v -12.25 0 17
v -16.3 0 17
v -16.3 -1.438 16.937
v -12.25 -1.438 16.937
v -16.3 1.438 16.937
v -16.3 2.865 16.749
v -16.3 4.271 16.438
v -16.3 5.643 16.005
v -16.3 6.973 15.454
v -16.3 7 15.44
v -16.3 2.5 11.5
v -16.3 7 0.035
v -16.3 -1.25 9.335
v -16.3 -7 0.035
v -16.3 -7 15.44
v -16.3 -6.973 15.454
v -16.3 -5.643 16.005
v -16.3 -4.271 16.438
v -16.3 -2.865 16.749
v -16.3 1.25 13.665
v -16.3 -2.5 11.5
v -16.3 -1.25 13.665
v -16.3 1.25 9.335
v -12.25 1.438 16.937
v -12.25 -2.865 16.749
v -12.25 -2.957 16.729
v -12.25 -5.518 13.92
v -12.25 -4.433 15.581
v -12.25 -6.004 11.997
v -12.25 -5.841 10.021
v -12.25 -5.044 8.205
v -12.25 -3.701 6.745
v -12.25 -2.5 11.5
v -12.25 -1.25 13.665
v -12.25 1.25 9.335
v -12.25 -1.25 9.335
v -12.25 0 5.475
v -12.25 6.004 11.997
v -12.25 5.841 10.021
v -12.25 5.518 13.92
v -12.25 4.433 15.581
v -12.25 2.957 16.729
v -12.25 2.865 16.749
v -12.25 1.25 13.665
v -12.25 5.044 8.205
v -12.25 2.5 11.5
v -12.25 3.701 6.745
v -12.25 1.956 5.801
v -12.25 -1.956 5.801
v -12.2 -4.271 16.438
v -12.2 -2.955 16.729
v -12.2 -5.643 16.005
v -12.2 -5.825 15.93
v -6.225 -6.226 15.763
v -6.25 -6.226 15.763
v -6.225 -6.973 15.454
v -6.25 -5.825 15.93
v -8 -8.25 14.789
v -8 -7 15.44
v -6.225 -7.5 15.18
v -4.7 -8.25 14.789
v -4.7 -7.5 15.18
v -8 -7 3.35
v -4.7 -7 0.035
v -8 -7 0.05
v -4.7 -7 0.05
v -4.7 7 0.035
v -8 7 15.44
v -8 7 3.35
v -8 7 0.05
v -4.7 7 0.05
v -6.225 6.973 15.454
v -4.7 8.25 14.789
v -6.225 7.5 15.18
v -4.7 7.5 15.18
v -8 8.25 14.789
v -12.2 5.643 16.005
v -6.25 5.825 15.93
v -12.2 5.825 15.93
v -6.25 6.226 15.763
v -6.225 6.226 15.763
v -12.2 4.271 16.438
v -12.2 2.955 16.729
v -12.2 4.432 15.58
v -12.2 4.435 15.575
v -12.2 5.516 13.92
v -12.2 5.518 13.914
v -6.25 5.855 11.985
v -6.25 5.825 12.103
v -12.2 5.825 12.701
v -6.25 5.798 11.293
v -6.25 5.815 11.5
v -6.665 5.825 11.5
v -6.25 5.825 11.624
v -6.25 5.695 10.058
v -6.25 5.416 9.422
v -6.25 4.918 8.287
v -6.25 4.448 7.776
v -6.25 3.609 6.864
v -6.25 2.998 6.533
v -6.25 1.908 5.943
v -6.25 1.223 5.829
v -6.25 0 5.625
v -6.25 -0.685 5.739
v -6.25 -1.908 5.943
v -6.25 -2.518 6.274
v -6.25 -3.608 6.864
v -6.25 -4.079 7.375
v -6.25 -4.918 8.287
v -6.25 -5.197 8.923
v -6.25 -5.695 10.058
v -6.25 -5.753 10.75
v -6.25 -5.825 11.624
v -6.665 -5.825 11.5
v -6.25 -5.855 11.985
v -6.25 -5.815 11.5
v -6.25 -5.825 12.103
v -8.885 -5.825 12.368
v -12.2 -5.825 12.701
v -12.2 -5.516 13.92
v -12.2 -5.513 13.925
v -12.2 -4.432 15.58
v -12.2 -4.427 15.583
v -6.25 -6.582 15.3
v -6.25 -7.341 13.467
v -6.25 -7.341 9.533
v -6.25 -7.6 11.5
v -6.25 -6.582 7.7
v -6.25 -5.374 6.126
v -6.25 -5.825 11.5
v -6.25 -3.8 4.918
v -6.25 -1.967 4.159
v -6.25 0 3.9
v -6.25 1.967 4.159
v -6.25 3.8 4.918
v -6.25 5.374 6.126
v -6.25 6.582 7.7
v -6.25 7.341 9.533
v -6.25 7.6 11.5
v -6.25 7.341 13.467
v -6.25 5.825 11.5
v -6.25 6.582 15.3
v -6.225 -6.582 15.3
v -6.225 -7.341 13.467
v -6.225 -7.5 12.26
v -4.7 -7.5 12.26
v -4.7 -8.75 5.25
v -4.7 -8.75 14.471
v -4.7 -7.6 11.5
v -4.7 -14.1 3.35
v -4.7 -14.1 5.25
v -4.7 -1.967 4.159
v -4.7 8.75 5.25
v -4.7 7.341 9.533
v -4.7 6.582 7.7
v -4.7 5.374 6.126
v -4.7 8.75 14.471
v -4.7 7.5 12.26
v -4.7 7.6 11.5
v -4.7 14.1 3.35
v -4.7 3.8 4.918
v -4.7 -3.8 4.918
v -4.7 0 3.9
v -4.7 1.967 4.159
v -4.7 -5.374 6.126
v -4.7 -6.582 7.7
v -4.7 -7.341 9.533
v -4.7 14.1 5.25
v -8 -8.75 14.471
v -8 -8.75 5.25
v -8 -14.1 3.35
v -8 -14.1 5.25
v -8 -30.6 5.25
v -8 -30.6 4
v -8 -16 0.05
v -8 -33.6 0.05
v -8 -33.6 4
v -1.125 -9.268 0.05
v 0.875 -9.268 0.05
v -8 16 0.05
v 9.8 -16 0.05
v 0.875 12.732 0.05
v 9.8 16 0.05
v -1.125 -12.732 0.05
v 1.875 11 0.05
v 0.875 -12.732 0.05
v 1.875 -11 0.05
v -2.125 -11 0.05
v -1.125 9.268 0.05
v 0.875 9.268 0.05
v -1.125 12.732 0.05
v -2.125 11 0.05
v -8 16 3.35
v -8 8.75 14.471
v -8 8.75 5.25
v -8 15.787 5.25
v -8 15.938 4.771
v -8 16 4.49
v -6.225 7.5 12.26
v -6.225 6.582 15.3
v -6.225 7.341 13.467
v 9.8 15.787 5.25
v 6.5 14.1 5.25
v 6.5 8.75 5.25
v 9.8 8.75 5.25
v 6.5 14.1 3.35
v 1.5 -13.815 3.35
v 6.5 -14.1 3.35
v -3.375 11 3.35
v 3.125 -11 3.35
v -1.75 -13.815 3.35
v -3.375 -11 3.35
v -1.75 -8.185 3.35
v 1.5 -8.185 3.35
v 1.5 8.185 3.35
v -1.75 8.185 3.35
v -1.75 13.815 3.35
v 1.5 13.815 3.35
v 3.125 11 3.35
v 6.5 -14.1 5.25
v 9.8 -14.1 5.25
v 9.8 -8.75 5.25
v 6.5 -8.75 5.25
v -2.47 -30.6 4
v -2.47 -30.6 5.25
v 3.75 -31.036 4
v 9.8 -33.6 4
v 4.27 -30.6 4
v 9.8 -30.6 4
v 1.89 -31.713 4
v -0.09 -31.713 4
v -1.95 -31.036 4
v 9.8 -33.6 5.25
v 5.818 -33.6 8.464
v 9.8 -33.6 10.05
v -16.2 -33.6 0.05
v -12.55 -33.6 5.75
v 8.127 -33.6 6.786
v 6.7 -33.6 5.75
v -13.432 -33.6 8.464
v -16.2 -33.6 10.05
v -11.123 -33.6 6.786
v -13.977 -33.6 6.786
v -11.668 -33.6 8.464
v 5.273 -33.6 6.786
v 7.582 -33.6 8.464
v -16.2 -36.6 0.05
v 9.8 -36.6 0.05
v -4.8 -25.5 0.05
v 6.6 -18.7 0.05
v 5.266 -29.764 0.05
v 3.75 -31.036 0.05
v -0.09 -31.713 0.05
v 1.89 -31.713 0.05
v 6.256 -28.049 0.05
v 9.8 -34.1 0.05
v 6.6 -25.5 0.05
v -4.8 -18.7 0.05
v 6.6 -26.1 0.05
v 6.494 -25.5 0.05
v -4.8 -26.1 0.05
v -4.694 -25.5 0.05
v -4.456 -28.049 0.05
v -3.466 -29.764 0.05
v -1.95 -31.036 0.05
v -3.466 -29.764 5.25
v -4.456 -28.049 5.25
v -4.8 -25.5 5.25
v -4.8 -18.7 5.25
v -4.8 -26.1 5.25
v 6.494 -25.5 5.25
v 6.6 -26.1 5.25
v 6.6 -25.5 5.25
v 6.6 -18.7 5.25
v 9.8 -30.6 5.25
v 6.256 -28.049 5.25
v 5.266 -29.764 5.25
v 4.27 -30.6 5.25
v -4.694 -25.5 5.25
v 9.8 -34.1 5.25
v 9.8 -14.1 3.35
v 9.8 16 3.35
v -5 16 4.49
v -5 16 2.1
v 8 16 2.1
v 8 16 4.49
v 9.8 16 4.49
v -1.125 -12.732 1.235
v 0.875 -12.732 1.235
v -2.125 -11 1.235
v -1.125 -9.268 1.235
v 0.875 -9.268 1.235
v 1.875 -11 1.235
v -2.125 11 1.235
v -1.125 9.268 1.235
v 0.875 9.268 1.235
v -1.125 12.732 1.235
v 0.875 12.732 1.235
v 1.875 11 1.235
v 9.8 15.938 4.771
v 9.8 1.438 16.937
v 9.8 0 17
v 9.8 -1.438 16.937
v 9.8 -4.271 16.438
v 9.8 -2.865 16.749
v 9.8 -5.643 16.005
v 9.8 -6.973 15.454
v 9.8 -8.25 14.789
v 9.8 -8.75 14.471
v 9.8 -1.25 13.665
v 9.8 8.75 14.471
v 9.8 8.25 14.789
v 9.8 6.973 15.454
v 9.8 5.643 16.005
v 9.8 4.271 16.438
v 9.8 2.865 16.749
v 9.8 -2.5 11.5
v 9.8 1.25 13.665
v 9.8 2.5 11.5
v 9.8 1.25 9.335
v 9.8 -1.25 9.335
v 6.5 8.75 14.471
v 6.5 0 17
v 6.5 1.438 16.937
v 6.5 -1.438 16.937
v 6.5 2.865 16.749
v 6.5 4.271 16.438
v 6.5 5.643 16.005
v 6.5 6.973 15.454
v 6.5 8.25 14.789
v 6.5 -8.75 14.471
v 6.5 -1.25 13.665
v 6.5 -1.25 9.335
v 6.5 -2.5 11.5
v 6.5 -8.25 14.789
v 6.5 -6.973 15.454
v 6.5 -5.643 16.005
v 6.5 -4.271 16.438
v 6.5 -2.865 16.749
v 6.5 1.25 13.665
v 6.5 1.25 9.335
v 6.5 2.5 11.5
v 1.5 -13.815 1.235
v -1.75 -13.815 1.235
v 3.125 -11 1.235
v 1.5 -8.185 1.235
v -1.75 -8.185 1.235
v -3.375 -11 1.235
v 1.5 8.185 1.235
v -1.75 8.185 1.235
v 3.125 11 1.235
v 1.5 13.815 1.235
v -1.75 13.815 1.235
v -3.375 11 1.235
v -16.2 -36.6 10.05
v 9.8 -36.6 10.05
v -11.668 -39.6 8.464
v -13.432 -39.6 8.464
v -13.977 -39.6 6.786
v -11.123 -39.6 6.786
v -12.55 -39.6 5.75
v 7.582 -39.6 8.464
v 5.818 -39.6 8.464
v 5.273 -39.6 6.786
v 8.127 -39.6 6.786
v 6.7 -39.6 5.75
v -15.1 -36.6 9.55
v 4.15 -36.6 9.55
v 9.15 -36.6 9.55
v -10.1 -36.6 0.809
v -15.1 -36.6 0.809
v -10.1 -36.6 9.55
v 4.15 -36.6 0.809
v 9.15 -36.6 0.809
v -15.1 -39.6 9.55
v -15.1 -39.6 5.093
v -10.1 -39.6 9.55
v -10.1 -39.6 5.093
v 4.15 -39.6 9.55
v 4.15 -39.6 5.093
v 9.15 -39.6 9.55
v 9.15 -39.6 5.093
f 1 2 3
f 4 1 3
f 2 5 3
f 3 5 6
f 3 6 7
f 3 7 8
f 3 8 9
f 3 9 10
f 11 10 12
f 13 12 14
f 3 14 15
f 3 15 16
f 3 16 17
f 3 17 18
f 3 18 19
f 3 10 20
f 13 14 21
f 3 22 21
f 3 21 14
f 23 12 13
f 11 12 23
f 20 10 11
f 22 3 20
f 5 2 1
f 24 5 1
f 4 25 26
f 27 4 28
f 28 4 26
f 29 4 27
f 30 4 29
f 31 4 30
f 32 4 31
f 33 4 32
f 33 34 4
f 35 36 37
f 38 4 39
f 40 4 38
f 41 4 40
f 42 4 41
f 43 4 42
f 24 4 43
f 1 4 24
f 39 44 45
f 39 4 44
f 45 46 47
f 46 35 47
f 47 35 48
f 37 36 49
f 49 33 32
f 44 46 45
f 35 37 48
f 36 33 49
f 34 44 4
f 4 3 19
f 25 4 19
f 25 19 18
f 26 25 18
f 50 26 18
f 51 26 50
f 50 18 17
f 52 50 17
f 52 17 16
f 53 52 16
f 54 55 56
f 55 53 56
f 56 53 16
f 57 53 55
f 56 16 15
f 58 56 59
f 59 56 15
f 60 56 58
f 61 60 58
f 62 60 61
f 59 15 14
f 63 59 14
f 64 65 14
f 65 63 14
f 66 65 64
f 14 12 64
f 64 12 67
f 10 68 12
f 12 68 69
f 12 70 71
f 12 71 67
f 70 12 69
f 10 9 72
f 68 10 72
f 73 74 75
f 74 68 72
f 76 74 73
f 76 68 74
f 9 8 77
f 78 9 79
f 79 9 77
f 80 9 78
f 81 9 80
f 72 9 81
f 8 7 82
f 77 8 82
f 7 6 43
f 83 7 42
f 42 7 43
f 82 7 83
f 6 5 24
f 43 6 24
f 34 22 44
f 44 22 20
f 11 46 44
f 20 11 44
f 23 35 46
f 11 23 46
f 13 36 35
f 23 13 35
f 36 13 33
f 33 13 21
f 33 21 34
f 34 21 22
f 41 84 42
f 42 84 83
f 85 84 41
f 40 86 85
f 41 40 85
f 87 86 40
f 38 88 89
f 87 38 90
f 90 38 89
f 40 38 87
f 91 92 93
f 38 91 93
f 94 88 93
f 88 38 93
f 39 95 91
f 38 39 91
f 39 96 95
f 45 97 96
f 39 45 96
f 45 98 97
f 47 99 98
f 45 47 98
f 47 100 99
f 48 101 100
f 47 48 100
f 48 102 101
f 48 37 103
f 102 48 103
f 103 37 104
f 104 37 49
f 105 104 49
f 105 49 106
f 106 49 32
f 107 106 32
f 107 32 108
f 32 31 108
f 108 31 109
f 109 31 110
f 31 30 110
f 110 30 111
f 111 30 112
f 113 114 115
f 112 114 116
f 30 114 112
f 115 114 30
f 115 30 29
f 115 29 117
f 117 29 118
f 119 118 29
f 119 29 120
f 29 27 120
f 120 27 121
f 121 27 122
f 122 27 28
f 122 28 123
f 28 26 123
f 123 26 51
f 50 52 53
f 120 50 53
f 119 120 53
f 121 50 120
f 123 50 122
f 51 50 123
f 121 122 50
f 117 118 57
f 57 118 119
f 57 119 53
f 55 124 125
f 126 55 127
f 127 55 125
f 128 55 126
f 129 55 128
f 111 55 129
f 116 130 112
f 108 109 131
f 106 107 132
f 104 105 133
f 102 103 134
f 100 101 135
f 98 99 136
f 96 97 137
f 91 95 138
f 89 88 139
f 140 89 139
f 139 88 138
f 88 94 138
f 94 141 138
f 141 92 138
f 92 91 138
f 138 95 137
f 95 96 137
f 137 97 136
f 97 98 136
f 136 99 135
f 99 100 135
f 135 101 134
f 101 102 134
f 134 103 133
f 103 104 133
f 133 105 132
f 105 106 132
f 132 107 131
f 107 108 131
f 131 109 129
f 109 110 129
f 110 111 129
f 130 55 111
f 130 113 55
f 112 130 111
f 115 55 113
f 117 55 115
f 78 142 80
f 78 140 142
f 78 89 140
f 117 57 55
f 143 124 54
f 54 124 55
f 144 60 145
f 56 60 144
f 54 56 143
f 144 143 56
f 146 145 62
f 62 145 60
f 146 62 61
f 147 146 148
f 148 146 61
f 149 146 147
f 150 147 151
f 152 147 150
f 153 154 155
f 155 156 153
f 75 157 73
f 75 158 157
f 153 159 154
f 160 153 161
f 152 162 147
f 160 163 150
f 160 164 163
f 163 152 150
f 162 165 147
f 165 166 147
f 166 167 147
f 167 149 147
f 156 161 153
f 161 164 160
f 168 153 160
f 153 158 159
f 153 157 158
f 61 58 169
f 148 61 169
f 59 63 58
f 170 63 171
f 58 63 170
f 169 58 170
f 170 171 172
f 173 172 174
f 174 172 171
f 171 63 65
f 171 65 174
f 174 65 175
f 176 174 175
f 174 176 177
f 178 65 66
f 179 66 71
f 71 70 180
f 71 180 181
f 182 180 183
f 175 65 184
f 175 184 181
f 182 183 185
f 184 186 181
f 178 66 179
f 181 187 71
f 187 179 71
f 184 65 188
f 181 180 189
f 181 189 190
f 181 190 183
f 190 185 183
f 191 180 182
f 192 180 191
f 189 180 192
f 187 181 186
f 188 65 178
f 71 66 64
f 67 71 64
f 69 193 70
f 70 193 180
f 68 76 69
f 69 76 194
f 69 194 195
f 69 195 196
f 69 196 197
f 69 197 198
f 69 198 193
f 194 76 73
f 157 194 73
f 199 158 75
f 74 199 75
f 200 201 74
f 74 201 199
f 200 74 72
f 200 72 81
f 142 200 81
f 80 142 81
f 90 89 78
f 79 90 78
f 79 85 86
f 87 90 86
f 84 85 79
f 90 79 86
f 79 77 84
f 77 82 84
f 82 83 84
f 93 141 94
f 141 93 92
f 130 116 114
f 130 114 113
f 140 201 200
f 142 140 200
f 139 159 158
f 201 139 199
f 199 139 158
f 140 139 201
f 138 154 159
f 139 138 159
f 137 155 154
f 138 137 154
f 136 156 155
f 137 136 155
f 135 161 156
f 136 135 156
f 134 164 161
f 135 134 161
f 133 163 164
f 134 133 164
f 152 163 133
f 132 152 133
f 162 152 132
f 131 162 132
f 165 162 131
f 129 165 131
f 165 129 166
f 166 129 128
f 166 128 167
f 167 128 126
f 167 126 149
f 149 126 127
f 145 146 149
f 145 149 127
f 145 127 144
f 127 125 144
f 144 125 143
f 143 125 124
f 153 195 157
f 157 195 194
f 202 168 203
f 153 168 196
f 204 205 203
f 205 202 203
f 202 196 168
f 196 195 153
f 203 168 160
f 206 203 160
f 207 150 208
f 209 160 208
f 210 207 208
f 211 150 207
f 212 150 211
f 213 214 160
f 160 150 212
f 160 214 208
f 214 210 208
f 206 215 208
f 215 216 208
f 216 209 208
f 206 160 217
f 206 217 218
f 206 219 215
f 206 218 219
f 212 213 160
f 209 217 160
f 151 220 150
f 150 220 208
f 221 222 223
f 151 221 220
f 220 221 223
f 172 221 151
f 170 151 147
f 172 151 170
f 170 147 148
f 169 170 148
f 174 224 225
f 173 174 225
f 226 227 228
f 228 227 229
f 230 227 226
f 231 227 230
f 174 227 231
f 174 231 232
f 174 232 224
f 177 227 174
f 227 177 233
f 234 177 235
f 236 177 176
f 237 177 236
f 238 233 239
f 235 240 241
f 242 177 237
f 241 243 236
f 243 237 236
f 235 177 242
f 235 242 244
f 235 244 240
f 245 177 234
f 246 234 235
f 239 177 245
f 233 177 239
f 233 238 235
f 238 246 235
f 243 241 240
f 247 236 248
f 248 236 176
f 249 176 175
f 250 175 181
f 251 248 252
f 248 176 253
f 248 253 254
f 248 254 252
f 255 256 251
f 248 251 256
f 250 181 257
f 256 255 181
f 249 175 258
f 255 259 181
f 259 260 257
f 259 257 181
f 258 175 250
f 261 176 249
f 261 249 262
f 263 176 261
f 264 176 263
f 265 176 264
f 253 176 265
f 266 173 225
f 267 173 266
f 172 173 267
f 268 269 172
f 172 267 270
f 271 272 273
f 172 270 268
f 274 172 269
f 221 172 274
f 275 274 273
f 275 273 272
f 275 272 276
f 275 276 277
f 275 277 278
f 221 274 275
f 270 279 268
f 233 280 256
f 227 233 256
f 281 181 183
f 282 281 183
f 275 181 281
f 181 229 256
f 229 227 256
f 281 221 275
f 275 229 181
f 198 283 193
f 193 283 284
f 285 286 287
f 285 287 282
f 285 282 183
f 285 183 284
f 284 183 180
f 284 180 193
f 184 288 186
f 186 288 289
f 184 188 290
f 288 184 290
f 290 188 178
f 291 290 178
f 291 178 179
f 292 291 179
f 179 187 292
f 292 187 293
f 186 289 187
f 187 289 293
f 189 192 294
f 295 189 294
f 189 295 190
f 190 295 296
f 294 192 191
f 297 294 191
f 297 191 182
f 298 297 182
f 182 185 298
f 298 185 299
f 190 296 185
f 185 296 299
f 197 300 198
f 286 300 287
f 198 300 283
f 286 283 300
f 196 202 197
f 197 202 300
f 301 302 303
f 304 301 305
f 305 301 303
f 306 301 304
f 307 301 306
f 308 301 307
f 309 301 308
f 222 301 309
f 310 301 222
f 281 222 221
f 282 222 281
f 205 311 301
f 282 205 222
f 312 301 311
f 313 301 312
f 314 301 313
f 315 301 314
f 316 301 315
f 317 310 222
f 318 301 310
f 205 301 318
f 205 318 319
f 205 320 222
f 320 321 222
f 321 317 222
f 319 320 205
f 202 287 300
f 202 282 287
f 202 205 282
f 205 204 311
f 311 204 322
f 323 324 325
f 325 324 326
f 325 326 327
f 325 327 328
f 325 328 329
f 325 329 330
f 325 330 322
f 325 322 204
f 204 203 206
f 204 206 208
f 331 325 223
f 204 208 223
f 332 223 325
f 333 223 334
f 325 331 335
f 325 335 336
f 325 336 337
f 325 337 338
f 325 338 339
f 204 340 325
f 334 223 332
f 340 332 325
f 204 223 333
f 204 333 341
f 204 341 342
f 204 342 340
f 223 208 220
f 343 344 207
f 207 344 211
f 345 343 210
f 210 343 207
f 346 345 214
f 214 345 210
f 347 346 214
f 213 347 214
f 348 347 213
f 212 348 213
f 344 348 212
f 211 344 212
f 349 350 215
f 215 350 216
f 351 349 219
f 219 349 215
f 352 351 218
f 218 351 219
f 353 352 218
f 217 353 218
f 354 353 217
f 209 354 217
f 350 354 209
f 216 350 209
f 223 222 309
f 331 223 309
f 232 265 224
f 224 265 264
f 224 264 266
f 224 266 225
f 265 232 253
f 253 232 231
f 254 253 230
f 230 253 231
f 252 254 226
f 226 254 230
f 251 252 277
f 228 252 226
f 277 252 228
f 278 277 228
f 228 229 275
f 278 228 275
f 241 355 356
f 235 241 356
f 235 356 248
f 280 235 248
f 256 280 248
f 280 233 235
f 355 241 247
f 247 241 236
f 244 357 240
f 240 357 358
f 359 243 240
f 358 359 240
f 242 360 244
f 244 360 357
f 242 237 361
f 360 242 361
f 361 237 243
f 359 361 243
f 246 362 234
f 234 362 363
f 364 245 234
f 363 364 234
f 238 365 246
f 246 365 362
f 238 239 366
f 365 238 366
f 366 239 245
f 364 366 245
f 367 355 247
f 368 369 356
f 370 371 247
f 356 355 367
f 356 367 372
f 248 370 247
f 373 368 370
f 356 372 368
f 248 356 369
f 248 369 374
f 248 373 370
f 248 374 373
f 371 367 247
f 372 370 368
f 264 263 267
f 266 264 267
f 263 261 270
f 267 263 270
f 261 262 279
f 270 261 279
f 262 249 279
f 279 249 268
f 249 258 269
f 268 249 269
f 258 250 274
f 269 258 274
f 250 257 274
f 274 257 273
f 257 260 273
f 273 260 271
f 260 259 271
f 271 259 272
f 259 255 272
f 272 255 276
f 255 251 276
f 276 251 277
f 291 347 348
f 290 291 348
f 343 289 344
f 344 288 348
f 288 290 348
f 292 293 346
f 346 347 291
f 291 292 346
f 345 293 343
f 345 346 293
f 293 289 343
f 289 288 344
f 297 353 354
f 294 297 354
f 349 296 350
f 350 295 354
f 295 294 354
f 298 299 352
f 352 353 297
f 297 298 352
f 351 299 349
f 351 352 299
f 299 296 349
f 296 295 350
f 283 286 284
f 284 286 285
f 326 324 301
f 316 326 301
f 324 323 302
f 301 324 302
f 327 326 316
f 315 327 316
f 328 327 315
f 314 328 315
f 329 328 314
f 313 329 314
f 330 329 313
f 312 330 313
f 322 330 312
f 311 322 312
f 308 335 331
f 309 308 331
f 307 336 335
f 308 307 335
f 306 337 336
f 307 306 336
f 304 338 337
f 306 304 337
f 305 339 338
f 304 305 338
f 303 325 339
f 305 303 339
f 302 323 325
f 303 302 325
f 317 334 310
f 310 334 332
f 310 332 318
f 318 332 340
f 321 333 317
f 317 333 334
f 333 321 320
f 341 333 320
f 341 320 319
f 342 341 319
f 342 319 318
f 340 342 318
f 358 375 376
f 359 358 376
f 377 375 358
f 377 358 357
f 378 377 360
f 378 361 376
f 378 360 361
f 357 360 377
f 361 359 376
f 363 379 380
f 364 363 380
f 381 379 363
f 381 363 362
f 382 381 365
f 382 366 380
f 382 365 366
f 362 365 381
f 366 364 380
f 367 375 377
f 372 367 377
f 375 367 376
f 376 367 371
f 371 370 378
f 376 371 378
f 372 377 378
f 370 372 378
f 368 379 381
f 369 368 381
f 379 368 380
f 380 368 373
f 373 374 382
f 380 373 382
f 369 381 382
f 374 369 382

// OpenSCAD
platformThickness=5;


beltTightTravel=14;
beltTightOffset=29;
beltTightSprocketHeight=17.45;
beltTightSprocketOD=14;
beltTightSprocketBeltD=9.25;
beltTightSprocketBaseD=9.25;
beltTightSprocketBaseSpace=3.3;
beltTightSprocketRimHeight=1.65;
beltTightSprocketBaseHeight=6.25;
Xbeltheight=5;
beltspace=12;
beltThickness=6.35;

pullBoltLength=22;
pullBoltHoleDia=4;
pullBoltHeadDia=6.5;
pullBoltHeadLength=3;

expoffset=20;

module pullySprocket() {
	
	color([0.3,0.3,0.3,1]) difference() {
		union() {
		
			translate([0,0,0])cylinder(beltTightSprocketBaseHeight,beltTightSprocketBaseD/2,beltTightSprocketBaseD/2,$fn=20);
			translate([0,0,beltTightSprocketBaseHeight])cylinder(beltTightSprocketRimHeight,beltTightSprocketOD/2,beltTightSprocketOD/2,$fn=20);
			translate([0,0,0])cylinder(beltTightSprocketHeight,beltTightSprocketBeltD/2,beltTightSprocketBeltD/2,$fn=20);
			translate([0,0,beltTightSprocketHeight-beltTightSprocketRimHeight])cylinder(beltTightSprocketRimHeight,beltTightSprocketOD/2,beltTightSprocketOD/2,$fn=20);
		}
		translate([0,0,0])
			rotate([0,0,30])cylinder(50,2.5,2.5,center=true,$fn=6);
	}
}

module pullBolt() {
	cylinder(pullBoltLength,pullBoltHoleDia/2,pullBoltHoleDia/2,center=true,$fn=6);
	translate([0,0,((pullBoltLength+pullBoltHeadLength)/2)-0.01])cylinder(pullBoltHeadLength,pullBoltHeadDia/2,pullBoltHeadDia/2,center=true,$fn=10);
	translate([0,0,-2])cylinder(3.5,pullBoltHeadDia/2,pullBoltHeadDia/2,center=true,$fn=6);
}
module pullSprocket() {
	translate([0,0,beltTightSprocketBaseSpace+beltTightSprocketHeight/2]) {
	cylinder(beltTightSprocketHeight,beltTightSprocketBeltD/2,beltTightSprocketBeltD/2,center=true,fn=10);
	translate([0,0,beltTightSprocketHeight/2-0.5])cylinder(1,beltTightSprocketOD/2,beltTightSprocketOD/2,center=true,fn=10);
	translate([0,0,0-(beltTightSprocketHeight/2-0.5)])cylinder(1,beltTightSprocketOD/2,beltTightSprocketOD/2,center=true,fn=10);
	}
}

module mainBlock() {
		union() {
			translate([0-beltTightOffset/2+beltTightSprocketBaseSpace,0,beltTightSprocketHeight/2+beltTightSprocketBaseSpace-0.625])
				cube([beltTightSprocketBaseSpace,
					  beltTightSprocketOD+pullBoltHoleDia*2+platformThickness*2,
			 	      beltTightSprocketHeight-beltTightSprocketBaseHeight+beltTightSprocketBaseSpace*2],center=true);

			translate([0-beltTightOffset*0.7,0,beltTightSprocketHeight+platformThickness/4-0.05])
				cube([beltTightOffset*0.6,beltTightSprocketOD+pullBoltHoleDia*2+platformThickness*2,beltTightSprocketBaseSpace],center=true);
			translate([0-beltTightOffset*0.7,0,platformThickness/2+beltTightSprocketBaseSpace/2])
				cube([beltTightOffset*0.6,beltTightSprocketOD+pullBoltHoleDia*2+platformThickness*2,beltTightSprocketBaseSpace],center=true);
			translate([0-beltTightOffset*0.7,15.05,12]) cube([beltTightOffset*0.6,1.9,13],center=true);
			translate([0-beltTightOffset*0.7,-15.05,12]) cube([beltTightOffset*0.6,1.9,13],center=true);
			translate([0-beltTightOffset+beltTightSprocketOD/2+2.75,0,0])
				cube([beltTightOffset*0.67,beltTightSprocketOD,platformThickness+beltTightSprocketBaseSpace*2],center=true);
		}
}
module beltTightener(withBolts=false,expand=false) {
	color([0.5,0.5,1,1])difference() {
		union() {
			intersection() {
				translate([-10,0,0]) difference() {
					cylinder(50,16.5,16.5,center=true,$fn=72);
					translate([-13,-17,0])cube([16.5,16.5,51],center=true);
					translate([-13,17,0])cube([16.5,16.5,51],center=true);
				}
			
				difference() {
					mainBlock();
					// vertical bolt
					translate([1-beltTightOffset+beltTightSprocketOD/2,0,10])
						rotate([0,0,30])cylinder(50,2.5,2.5,center=true,$fn=6);
					// tigheting bolt 
					translate([(-1.97-pullBoltLength+pullBoltHeadLength)/2,beltTightSprocketOD/2+pullBoltHoleDia,beltTightSprocketHeight/2+beltTightSprocketBaseSpace/2])
						rotate([0,90,0])pullBolt();	
					// tigheting bolt r
					translate([(-1.97-pullBoltLength+pullBoltHeadLength)/2,0-(beltTightSprocketOD/2+pullBoltHoleDia),beltTightSprocketHeight/2+beltTightSprocketBaseSpace/2])
						rotate([0,90,0])pullBolt();


					translate([1-beltTightOffset+beltTightSprocketOD/2-beltTightSprocketBaseD/2,0,beltTightSprocketHeight/2-1.7])
						cube([beltTightSprocketBaseD,beltTightSprocketBaseD+2.4,beltTightSprocketHeight],center=true);
					translate([1-beltTightOffset,0,(beltTightSprocketOD+beltTightSprocketBaseHeight)/2])
						cube([beltTightSprocketOD,beltTightSprocketOD+1,beltTightSprocketHeight-beltTightSprocketBaseHeight+0.5],center=true);
					translate([1-beltTightOffset+beltTightSprocketOD/2,0,6.25])
						cylinder(16,beltTightSprocketBaseD/2+1.4,beltTightSprocketBaseD/2+1,center=true,fn=10);
					translate([1-beltTightOffset+beltTightSprocketOD/2,0,6.75])
						cylinder(5,beltTightSprocketOD/2+0.6,beltTightSprocketOD/2+0.6,center=true,fn=10);
				}
			}

			// limit switch
			// height above rod center = 18.5
			//	translate([-20,17,12]) cube([10,10,0.1],center=true);
			// screw centers 19
			//	translate([-17.35,0,21.25]) cube([7.25,19,18.5],center=true);
/*			difference() {

				union() {
					translate([-11.55,0,23]) cube([4,27,7],center=true);
					translate([-13.55,0,20.8]) cube([8,27,7],center=true);
					translate([-13.55,9.5,23]) cylinder(7,4,4,center=true,$fn=36);//cube([0.1,0.1,19],center=true);
					translate([-13.55,-9.5,23]) cylinder(7,4,4,center=true,$fn=36);//cube([0.1,0.1,19],center=true);
				}
				translate([-13.55,0,21.25]) cube([8.01,11,18.51],center=true);
		
				translate([-17.35+3.625,9.5,21.8]) cylinder(3,3.5,3.5,center=true,$fn=6);//cube([0.1,0.1,19],center=true);
				translate([-17                ,9.5,21.8]) cylinder(3,3.5,3.5,center=true,$fn=6);//cube([0.1,0.1,19],center=true);
				translate([-17.35+3.625,-9.5,21.8]) cylinder(3,3.5,3.5,center=true,$fn=6);//cube([0.1,0.1,19],center=true);
				translate([-17                ,-9.5,21.8]) cylinder(3,3.5,3.5,center=true,$fn=6);//cube([0.1,0.1,19],center=true);
			}*/
		}
//		translate([-17.35+3.625,9.5,21.25]) cylinder(25,2,2,center=true);//cube([0.1,0.1,19],center=true);
//		translate([-17.35+3.625,-9.5,21.25]) cylinder(25,2,2,center=true);//cube([0.1,0.1,19],center=true);
	}
	if (withBolts) {
		color([0.3,0.3,0.3,1]) {
			translate([(-1.97-pullBoltLength+pullBoltHeadLength)/2,beltTightSprocketOD/2+pullBoltHoleDia,beltTightSprocketHeight/2+beltTightSprocketBaseSpace/2])
				rotate([0,90,0])pullBolt();
			translate([(-1.97-pullBoltLength+pullBoltHeadLength)/2,0-(beltTightSprocketOD/2+pullBoltHoleDia),beltTightSprocketHeight/2+beltTightSprocketBaseSpace/2])
				rotate([0,90,0])pullBolt();
				translate([1-beltTightOffset+beltTightSprocketOD/2-(expand?expoffset:0),0,-1])pullySprocket();
//				translate([1-beltTightOffset+beltTightSprocketOD/2,0,-1])pullySprocket();
		}
	}
	eslen=20;
	eswid=17.8;
	eshgt=5.2;
	esthk=3.2;
	// new end stop support
	translate([-12.15,0-(eslen/2)-14.1,beltTightSprocketHeight/2+beltTightSprocketBaseSpace-0.625])
	union() {
		difference() {
			cube([eshgt, eslen,eswid],center=true);
			translate([0,-2,0])rotate([0,90,0])cylinder(eshgt+1,(eswid/2)-esthk,(eswid/2)-esthk,center=true);
			translate([0,2,0])cube([eshgt+1, eslen/2-esthk,eswid-esthk*2],center=true);
			translate([-2,-8,0])cube([1.3,3,26],center=true);
		}
		difference() {
			union() {
				translate([-5+2.6,-11,-4.1])cube([10,3,26],center=true);
				translate([-5+2.6,-14,5.75]) difference() {
					cube([9,3,5],center=true);
					translate([4,-0.5,0])rotate([0,0,35])cube([9,3,7],center=true);
				}
				translate([-5+2.6,-14,5.75-19.25]) difference() {
					cube([9,3,5],center=true);
					translate([4,-0.5,0])rotate([0,0,35])cube([9,3,7],center=true);
				}
			}
			translate([-4.6,-10,5.8])rotate([90,0,0])limitSwitchBolts();
		}
	}
}
module limitSwitchBolts() {
	translate([0,0,0])cylinder(20,1.5,1.5,center=true);
	translate([0,-19.25,0])cylinder(20,1.5,1.5,center=true);
}
module limitSwitch() {
	color([0.3,0.6,0.3,1.2])difference() {
		cube([16.5,40.5,1],center=true);
		translate([-5.25,17.25,0]) { limitSwitchBolts(); }
	}
	color([0.3,0.3,0.3,1])translate([-8.25+5,7.5,3.3])cube([10,13,5.4],center=true);
	color([0.7,0.7,0.7,1])translate([-10,7.5,3.3])rotate([0,0,20])cube([1,13,4],center=true);
	
}

translate([-10.5,0,-9.5])rotate([0,90,0]) beltTightener();
//translate([-10.5,-40,2])rotate([90,90,0])limitSwitch();
